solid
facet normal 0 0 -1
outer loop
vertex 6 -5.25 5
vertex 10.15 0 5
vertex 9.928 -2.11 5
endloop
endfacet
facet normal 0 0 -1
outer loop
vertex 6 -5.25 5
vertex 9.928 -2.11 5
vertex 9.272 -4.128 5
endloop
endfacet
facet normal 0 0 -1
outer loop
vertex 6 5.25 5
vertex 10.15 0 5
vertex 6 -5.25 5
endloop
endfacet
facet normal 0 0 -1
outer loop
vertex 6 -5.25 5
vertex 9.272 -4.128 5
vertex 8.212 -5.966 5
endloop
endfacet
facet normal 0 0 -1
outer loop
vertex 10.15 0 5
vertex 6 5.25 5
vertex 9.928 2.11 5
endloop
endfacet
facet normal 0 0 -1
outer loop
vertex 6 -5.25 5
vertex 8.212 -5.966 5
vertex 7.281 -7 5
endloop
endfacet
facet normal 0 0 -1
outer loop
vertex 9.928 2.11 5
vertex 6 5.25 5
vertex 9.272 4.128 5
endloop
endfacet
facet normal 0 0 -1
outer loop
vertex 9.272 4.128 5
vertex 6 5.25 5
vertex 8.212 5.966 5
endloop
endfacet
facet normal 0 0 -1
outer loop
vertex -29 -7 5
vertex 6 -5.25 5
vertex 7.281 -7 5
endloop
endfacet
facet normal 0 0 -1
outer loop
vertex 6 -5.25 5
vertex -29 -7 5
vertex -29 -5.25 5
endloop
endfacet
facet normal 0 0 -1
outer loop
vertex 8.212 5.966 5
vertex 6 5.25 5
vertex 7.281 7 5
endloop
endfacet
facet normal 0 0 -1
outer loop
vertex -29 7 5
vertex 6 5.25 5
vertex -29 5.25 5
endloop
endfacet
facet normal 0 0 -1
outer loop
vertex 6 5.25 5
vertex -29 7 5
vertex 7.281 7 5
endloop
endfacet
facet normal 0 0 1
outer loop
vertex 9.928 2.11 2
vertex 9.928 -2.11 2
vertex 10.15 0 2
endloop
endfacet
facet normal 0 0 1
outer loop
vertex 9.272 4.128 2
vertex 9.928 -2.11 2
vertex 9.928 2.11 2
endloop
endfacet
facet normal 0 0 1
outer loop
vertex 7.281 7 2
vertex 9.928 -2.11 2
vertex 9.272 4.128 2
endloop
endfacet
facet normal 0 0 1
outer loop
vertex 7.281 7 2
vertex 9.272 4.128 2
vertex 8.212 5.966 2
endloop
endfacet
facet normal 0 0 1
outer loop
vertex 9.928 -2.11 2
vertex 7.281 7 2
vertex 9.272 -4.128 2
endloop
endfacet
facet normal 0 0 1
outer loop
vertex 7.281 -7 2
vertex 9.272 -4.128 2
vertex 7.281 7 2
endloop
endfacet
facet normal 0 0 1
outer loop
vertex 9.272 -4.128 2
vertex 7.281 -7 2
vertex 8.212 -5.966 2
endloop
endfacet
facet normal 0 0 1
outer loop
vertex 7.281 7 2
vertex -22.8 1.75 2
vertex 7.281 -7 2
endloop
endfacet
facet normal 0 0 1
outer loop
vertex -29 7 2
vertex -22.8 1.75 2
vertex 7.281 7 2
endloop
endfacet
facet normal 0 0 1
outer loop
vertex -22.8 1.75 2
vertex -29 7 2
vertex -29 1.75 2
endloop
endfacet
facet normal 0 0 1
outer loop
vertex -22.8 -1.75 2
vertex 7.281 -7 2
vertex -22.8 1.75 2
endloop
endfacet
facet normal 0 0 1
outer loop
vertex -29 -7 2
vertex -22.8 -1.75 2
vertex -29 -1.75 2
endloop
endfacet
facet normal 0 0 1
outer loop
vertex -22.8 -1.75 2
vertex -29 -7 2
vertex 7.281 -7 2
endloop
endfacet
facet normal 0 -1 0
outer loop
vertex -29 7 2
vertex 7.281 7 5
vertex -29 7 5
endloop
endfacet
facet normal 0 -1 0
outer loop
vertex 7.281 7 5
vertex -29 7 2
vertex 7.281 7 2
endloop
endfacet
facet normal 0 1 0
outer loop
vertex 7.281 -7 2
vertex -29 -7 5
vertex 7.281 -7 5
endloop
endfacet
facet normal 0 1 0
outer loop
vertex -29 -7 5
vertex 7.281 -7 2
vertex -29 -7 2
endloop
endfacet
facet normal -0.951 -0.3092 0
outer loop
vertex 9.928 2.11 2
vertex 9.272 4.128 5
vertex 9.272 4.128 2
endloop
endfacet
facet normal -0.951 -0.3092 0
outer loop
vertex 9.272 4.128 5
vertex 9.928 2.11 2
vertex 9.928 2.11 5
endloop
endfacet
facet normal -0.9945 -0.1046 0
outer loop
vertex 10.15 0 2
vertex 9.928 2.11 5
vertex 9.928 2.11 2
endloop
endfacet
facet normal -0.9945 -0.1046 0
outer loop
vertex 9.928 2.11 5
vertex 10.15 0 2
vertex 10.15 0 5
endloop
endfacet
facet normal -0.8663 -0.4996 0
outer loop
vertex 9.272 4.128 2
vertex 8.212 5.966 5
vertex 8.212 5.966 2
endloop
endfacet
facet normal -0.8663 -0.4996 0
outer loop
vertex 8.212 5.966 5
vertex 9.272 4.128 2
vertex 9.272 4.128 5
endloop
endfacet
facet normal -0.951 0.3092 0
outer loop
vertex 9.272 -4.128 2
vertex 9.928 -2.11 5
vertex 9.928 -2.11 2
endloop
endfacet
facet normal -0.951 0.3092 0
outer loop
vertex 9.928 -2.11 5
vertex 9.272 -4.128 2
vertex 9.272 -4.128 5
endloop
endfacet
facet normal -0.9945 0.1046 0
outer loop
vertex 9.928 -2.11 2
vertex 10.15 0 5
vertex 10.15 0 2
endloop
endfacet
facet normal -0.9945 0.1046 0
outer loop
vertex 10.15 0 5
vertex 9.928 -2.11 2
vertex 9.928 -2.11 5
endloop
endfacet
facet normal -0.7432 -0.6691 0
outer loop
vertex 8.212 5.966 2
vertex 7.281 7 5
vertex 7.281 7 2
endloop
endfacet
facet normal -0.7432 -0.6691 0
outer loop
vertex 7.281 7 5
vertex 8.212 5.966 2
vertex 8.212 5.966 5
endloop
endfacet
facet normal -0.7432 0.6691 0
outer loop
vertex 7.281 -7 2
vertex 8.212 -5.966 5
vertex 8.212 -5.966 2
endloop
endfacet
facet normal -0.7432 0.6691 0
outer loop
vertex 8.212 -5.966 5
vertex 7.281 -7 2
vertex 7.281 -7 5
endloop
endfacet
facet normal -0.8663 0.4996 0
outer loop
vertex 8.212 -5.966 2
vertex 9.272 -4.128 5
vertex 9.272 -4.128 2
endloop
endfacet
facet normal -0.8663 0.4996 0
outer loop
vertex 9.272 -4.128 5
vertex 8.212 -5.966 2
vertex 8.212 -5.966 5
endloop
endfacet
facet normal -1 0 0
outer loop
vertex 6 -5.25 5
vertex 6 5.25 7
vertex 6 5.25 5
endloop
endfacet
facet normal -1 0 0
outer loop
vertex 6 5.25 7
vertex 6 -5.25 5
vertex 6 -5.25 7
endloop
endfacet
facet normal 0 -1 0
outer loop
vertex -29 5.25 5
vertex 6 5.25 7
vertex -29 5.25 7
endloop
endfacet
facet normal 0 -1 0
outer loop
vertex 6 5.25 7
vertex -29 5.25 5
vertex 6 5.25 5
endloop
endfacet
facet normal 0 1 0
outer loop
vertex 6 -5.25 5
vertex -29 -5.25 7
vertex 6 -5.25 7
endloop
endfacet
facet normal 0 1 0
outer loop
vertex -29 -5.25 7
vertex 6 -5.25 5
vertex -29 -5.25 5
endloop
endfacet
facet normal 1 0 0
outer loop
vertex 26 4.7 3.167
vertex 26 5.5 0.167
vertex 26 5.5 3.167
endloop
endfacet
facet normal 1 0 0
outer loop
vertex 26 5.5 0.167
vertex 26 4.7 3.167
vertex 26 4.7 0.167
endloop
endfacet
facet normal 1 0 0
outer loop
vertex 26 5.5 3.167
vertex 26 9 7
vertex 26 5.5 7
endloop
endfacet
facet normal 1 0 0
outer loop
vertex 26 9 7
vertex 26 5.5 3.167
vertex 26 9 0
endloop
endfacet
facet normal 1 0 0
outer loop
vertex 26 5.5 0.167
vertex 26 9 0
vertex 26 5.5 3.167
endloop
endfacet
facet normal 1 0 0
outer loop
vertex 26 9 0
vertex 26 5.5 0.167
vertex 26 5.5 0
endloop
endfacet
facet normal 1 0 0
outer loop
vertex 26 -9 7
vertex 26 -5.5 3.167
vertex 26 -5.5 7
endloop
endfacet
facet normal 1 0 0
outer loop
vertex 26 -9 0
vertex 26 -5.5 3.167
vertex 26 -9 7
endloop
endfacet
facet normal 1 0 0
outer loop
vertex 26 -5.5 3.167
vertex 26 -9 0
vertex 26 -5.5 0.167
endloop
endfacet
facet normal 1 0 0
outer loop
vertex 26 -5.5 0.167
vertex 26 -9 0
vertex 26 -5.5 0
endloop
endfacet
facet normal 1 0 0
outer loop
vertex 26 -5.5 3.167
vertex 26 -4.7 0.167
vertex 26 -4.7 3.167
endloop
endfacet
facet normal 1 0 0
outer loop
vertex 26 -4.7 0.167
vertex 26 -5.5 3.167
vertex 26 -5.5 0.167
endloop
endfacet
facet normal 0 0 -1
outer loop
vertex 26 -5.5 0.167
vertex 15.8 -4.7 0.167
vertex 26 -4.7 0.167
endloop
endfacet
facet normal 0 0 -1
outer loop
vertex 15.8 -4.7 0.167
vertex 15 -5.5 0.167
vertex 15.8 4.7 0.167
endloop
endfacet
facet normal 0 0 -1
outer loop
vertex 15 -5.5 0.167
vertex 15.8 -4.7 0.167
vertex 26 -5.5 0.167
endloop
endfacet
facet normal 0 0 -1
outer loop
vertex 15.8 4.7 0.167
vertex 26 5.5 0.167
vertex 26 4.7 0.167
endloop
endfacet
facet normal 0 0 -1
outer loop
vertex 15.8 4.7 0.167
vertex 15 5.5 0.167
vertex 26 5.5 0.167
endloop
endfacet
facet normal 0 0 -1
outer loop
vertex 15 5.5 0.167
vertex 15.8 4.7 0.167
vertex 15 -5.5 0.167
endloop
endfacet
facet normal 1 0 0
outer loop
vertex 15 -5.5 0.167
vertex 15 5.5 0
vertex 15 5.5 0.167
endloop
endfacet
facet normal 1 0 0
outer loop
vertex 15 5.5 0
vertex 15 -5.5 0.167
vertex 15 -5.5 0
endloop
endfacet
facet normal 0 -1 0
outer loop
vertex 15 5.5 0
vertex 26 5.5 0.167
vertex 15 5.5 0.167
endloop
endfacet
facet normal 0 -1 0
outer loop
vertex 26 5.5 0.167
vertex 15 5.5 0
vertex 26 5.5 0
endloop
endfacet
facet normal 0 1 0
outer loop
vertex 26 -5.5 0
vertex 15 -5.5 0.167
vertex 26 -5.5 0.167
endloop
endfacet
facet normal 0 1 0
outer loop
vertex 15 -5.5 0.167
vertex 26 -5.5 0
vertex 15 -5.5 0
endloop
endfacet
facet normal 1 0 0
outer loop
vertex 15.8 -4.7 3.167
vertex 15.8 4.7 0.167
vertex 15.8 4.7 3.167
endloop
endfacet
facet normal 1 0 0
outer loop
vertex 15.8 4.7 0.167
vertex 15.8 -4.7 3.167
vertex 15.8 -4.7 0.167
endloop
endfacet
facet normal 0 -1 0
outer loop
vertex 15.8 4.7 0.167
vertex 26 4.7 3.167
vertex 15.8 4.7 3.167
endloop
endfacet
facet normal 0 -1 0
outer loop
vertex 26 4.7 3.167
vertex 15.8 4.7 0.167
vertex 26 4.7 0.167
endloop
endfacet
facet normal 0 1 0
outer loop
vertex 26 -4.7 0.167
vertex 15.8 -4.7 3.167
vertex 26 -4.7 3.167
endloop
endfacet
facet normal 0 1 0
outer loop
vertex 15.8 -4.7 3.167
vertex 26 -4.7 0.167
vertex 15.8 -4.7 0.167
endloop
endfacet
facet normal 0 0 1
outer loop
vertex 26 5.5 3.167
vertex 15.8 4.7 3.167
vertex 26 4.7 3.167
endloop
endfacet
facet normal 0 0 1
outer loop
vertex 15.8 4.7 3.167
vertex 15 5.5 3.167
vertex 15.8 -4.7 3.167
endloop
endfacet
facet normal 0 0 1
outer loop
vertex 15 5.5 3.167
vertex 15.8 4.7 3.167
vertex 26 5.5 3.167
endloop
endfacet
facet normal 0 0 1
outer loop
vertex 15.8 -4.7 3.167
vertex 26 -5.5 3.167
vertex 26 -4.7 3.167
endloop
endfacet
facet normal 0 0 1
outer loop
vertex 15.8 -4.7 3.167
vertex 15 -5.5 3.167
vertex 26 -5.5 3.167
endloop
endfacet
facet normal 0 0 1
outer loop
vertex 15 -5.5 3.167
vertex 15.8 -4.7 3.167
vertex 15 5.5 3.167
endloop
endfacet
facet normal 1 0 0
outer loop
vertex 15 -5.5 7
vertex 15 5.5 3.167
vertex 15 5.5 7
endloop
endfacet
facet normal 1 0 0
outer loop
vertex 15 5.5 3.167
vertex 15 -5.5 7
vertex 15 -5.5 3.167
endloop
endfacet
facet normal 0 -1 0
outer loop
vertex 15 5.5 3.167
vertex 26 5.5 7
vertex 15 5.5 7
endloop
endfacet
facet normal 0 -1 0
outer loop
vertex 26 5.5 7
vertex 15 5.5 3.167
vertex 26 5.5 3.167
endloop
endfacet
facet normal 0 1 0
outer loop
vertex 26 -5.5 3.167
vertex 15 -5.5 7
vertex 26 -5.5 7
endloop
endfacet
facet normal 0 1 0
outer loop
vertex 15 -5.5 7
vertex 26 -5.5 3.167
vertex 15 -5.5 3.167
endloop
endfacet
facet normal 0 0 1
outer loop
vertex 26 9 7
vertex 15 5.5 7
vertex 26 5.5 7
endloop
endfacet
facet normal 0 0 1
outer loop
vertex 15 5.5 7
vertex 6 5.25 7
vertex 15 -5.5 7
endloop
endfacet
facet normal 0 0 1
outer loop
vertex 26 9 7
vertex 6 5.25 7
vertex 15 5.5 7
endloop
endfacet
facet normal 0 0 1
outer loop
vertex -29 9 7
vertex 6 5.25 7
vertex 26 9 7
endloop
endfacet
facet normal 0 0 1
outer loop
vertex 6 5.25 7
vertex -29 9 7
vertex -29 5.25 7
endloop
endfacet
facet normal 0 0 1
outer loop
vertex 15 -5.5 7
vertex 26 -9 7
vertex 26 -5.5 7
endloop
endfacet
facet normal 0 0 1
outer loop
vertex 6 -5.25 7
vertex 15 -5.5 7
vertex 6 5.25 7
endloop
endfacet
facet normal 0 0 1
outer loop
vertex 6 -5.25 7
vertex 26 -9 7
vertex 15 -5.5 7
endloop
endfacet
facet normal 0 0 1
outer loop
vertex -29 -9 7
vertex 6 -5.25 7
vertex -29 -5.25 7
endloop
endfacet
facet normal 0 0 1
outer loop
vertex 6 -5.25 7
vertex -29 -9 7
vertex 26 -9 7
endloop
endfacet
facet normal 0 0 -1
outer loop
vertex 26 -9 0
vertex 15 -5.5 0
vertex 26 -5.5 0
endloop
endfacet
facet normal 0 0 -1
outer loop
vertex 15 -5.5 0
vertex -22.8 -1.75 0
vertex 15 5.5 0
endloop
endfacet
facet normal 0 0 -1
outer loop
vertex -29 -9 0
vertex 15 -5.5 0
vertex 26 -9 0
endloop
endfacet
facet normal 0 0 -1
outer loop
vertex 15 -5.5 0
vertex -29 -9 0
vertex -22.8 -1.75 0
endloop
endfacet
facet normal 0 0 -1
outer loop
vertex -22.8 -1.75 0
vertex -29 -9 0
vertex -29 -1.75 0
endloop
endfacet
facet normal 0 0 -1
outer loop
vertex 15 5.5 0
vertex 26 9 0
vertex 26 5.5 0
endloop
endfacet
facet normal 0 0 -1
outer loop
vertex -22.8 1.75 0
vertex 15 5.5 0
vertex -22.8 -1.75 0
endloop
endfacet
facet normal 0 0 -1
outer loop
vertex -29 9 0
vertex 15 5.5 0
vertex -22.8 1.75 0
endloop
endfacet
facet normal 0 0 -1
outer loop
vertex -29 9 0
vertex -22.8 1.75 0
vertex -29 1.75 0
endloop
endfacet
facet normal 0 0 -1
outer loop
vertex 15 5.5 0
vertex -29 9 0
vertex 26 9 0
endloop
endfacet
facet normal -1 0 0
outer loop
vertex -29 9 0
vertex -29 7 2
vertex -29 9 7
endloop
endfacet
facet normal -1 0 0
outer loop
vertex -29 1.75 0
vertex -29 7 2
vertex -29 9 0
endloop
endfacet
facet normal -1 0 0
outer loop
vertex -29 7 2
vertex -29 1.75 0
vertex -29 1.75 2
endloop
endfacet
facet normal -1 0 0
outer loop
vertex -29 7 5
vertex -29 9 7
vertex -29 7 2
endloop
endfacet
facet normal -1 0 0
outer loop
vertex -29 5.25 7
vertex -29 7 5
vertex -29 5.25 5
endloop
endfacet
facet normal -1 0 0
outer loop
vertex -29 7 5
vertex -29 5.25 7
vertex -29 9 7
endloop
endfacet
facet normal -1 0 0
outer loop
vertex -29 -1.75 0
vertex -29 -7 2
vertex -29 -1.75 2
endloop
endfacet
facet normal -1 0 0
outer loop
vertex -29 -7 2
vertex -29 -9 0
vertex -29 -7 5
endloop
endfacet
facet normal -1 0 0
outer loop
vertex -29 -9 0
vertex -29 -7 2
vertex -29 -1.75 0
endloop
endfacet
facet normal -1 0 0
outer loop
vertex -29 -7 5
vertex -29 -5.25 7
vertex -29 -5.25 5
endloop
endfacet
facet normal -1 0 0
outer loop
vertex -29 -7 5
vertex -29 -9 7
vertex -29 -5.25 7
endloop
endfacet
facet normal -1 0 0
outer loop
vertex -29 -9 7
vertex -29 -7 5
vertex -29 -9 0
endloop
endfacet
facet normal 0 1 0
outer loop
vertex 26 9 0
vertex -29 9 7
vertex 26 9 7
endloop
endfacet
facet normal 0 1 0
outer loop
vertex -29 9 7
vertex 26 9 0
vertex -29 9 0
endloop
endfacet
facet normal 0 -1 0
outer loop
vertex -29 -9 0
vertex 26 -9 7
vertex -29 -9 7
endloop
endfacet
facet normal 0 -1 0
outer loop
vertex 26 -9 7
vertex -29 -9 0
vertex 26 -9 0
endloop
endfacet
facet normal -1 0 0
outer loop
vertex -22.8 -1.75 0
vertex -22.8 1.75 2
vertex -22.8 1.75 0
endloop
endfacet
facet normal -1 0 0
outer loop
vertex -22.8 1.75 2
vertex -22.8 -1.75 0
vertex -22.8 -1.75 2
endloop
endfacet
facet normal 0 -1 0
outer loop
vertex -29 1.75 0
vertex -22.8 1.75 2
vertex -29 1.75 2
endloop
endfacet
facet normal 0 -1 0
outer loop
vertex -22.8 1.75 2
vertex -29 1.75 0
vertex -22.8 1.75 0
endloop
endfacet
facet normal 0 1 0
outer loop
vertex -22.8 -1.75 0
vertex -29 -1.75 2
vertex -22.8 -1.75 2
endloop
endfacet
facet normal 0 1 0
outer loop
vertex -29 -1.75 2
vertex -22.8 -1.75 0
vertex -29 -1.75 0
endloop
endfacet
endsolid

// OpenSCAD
// Connecter between the Bauhaus 100mm clamp and a pogo-pin cluster.

//Caliper dimentions
//foot=[20.3,13,3];
foot=[20.3,14,3];
ankle=[20,10.5,10];

arm=[55,18,7];
shaft=[7.2,3.5,225]; //black metal bar

pogo_cluster=[11,11,24.5];
pogo_notch=[5,3,0.8]; //height,width,depth

module Shaft(){ //black metal shaft
    translate([-30,0-shaft[1]/2,0-shaft[2]/2])
    cube(shaft); 
    }

module Foot(){ //Injection moulded part that accepts the clamp work protection pad.
    intersection(){
        translate([0,0,foot[2]/2]) cube(foot, center=true);
        cylinder(d=foot[0], h=5);
    }
    translate([-4,0,foot[2]-0.1+ankle[2]/2]) cube(ankle, center=true);
}



module Pogos(){ //This is the CAD model of the pogo-pin cluster.
//The cube the pogo-pins connect to
cube([pogo_cluster[0],pogo_cluster[1],pogo_notch[0]-(pogo_notch[1]/2)]);
//Indent around the sides.
translate([pogo_notch[2],pogo_notch[2],1])
cube([pogo_cluster[0]-(2*pogo_notch[2]),pogo_cluster[1]-(2*pogo_notch[2]),10]);
//The larger, upper, cube 
translate([0,0,pogo_notch[0]+(pogo_notch[1]/2)])
cube([pogo_cluster[0],pogo_cluster[1],pogo_cluster[2]-(pogo_notch[0]+(pogo_notch[1]/2))]);
}

module Grip(){ //This grips the pogo pin cluster.
    difference(){
    translate([1,0-arm[1]/2,0-arm[2]/2])
        cube([arm[0]-11,arm[1],arm[2]]);
    translate([0,0-pogo_cluster[1]/2,pogo_notch[0]])
        Pogos();  
    }
}

difference(){
translate([-29,0-arm[1]/2,0]) cube(arm);
translate([0,0,2]) Foot();
translate([-13,0,2]) Foot();
translate([-26,0,2]) Foot();
    Shaft();
translate([15,0-pogo_cluster[1]/2,0-pogo_notch[0]/1.5])
    #Pogos();

translate([20,0-pogo_cluster[1]/2,0-pogo_notch[0]/1.5]) Pogos();    

}
